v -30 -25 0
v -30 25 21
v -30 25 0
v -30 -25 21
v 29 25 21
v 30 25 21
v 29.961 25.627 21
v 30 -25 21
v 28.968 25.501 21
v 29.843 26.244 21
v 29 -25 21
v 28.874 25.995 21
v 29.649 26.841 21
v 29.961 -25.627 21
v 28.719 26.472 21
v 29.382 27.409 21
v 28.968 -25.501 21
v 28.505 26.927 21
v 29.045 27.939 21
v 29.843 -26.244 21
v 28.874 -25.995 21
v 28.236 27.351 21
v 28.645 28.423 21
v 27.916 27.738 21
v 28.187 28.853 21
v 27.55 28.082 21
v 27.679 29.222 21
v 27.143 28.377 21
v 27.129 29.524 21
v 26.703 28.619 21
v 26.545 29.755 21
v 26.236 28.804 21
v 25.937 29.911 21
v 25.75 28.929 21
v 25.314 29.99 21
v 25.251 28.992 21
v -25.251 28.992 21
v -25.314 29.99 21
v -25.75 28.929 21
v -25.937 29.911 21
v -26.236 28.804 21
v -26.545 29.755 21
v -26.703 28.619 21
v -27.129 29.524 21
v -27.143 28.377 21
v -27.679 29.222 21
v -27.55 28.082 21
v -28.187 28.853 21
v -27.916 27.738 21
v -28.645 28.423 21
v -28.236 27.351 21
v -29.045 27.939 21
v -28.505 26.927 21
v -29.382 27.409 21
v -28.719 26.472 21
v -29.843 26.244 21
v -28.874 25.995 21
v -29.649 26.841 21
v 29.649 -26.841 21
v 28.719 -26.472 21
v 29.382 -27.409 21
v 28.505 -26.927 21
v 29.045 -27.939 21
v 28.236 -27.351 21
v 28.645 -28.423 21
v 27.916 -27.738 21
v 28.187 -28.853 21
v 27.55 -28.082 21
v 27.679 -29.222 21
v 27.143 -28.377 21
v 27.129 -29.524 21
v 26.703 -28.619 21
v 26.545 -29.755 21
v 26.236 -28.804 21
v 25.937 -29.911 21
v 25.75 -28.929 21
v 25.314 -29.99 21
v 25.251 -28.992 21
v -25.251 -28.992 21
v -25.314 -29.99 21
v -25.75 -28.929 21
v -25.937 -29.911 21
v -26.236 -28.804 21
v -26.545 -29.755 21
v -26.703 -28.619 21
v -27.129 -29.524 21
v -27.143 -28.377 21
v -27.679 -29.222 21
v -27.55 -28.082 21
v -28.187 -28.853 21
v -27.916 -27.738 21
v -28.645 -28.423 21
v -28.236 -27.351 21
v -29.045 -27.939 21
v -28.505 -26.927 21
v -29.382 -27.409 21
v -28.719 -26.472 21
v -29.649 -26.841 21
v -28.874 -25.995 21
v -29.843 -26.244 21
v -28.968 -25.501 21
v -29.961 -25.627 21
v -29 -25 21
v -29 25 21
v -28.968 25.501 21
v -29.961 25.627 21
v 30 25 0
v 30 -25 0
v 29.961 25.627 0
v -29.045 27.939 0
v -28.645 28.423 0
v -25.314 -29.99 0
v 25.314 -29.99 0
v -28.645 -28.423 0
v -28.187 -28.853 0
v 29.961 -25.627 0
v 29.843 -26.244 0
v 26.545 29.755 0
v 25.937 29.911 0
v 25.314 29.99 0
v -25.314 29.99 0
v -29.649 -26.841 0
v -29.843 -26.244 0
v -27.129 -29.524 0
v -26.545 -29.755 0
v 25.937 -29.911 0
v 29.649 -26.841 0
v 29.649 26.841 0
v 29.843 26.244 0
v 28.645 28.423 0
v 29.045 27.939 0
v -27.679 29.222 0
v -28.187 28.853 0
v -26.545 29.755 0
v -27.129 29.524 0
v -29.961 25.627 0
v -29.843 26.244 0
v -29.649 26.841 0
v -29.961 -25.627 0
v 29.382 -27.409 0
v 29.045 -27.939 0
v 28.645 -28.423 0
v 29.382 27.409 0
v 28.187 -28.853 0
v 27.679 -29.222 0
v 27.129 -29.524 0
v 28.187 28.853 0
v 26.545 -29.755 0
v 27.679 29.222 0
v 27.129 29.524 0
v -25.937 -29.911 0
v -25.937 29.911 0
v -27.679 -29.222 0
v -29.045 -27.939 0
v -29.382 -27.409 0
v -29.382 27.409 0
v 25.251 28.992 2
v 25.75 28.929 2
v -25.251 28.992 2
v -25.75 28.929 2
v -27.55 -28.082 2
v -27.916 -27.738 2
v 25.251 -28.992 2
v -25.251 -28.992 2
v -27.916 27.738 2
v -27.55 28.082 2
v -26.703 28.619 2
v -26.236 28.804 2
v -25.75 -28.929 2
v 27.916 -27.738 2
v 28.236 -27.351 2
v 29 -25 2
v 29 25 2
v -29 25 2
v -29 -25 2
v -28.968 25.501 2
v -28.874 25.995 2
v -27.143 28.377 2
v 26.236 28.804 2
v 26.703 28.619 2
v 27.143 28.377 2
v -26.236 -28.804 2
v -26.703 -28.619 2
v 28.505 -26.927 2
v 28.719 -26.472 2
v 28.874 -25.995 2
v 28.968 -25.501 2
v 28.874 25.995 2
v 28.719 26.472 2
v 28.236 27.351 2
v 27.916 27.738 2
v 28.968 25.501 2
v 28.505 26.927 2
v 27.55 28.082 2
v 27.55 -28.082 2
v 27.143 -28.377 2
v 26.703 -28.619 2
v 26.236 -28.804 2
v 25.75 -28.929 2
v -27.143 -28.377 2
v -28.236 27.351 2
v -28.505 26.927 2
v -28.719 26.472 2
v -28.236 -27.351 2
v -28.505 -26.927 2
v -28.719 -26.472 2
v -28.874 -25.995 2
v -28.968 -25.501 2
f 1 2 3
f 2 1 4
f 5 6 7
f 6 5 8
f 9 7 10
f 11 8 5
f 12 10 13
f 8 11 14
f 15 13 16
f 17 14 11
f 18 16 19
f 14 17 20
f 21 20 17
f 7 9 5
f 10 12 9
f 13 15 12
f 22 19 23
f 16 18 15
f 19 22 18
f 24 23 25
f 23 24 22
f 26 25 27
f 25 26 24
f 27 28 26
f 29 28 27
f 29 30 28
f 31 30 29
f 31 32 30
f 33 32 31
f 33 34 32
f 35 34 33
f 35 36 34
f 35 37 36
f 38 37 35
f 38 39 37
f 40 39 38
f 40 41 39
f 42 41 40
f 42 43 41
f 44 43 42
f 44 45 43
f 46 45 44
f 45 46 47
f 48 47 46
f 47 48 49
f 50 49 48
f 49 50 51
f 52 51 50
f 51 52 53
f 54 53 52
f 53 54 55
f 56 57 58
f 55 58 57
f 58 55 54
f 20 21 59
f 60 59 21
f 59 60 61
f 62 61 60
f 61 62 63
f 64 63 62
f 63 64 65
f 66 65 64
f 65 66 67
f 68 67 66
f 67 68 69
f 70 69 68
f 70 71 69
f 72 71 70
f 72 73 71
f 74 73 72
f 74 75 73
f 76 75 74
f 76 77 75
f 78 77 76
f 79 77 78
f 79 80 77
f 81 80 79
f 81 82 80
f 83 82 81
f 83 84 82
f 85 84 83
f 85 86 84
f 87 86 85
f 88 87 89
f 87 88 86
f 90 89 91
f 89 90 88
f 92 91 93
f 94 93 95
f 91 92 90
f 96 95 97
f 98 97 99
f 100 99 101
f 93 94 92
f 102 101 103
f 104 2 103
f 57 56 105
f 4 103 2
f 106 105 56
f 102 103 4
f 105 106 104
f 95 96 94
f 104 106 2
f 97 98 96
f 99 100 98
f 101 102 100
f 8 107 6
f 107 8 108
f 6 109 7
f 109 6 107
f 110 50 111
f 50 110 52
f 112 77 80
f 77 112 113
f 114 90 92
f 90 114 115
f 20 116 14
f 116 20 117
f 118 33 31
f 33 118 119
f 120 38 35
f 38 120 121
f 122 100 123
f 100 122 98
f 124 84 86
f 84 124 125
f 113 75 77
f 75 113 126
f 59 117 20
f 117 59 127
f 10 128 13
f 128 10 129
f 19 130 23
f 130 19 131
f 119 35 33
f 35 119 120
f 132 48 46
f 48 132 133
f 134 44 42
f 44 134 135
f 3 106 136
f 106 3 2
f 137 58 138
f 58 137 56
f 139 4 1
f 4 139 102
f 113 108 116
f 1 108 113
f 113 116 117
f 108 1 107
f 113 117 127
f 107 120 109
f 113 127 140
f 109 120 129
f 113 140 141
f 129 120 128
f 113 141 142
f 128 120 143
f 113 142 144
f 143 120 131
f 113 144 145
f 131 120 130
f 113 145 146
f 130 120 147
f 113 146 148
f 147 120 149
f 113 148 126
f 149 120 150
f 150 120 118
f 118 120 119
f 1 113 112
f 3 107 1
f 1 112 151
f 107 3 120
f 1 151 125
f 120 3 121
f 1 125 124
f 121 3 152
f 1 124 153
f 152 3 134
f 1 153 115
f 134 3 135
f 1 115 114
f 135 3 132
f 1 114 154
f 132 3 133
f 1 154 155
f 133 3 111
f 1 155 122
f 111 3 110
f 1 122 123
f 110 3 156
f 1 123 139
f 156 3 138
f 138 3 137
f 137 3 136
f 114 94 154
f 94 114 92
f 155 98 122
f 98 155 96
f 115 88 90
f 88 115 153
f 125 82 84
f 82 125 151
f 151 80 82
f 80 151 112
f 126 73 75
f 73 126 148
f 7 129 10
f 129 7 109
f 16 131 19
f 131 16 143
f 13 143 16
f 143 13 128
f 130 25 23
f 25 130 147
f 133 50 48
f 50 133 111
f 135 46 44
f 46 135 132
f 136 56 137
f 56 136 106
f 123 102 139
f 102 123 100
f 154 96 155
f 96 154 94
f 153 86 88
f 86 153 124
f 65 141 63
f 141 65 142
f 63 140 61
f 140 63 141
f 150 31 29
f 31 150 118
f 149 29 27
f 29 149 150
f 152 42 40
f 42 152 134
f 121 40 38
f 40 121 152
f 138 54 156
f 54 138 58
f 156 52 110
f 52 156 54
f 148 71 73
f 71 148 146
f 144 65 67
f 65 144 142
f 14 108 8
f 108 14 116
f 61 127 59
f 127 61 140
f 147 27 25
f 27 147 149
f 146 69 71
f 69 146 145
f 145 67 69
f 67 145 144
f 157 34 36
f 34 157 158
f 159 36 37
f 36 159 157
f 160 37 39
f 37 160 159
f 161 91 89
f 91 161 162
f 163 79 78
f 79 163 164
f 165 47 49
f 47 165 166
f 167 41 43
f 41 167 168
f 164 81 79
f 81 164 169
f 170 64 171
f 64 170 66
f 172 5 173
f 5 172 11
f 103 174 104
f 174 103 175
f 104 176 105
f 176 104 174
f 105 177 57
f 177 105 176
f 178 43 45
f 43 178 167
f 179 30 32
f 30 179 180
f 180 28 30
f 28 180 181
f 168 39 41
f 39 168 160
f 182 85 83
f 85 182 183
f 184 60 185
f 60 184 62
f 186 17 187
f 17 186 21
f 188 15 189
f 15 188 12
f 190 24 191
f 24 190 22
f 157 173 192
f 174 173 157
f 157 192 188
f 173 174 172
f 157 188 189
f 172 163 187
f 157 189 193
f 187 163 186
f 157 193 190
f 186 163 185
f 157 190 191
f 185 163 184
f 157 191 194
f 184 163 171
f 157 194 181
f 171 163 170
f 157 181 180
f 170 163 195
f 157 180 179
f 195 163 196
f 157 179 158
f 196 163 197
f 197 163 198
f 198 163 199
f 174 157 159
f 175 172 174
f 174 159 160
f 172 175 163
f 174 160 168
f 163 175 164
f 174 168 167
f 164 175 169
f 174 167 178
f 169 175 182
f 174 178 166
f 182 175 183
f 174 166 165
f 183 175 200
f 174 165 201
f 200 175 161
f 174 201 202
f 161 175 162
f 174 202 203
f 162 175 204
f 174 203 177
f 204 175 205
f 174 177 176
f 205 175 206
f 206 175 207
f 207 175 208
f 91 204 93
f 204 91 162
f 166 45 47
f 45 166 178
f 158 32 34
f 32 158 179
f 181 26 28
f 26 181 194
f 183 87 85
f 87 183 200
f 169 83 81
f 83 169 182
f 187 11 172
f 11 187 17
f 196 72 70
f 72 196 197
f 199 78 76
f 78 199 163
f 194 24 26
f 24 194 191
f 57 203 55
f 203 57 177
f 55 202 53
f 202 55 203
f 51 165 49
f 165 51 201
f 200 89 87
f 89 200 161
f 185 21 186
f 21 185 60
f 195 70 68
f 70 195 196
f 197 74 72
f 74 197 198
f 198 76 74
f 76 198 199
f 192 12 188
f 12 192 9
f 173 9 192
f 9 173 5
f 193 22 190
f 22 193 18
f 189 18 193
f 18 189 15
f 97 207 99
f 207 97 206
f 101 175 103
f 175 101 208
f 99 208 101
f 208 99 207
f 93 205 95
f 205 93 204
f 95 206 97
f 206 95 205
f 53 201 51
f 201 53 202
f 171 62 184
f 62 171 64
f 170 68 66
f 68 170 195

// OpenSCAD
$fn = 50;


difference() {
	union() {
		hull() {
			translate(v = [-25.0000000000, 25.0000000000, 0]) {
				cylinder(h = 21, r = 5);
			}
			translate(v = [25.0000000000, 25.0000000000, 0]) {
				cylinder(h = 21, r = 5);
			}
			translate(v = [-25.0000000000, -25.0000000000, 0]) {
				cylinder(h = 21, r = 5);
			}
			translate(v = [25.0000000000, -25.0000000000, 0]) {
				cylinder(h = 21, r = 5);
			}
		}
	}
	union() {
		translate(v = [0, 0, 2]) {
			#hull() {
				translate(v = [-25.0000000000, 25.0000000000, 0]) {
					cylinder(h = 19, r = 4);
				}
				translate(v = [25.0000000000, 25.0000000000, 0]) {
					cylinder(h = 19, r = 4);
				}
				translate(v = [-25.0000000000, -25.0000000000, 0]) {
					cylinder(h = 19, r = 4);
				}
				translate(v = [25.0000000000, -25.0000000000, 0]) {
					cylinder(h = 19, r = 4);
				}
			}
		}
	}
}
